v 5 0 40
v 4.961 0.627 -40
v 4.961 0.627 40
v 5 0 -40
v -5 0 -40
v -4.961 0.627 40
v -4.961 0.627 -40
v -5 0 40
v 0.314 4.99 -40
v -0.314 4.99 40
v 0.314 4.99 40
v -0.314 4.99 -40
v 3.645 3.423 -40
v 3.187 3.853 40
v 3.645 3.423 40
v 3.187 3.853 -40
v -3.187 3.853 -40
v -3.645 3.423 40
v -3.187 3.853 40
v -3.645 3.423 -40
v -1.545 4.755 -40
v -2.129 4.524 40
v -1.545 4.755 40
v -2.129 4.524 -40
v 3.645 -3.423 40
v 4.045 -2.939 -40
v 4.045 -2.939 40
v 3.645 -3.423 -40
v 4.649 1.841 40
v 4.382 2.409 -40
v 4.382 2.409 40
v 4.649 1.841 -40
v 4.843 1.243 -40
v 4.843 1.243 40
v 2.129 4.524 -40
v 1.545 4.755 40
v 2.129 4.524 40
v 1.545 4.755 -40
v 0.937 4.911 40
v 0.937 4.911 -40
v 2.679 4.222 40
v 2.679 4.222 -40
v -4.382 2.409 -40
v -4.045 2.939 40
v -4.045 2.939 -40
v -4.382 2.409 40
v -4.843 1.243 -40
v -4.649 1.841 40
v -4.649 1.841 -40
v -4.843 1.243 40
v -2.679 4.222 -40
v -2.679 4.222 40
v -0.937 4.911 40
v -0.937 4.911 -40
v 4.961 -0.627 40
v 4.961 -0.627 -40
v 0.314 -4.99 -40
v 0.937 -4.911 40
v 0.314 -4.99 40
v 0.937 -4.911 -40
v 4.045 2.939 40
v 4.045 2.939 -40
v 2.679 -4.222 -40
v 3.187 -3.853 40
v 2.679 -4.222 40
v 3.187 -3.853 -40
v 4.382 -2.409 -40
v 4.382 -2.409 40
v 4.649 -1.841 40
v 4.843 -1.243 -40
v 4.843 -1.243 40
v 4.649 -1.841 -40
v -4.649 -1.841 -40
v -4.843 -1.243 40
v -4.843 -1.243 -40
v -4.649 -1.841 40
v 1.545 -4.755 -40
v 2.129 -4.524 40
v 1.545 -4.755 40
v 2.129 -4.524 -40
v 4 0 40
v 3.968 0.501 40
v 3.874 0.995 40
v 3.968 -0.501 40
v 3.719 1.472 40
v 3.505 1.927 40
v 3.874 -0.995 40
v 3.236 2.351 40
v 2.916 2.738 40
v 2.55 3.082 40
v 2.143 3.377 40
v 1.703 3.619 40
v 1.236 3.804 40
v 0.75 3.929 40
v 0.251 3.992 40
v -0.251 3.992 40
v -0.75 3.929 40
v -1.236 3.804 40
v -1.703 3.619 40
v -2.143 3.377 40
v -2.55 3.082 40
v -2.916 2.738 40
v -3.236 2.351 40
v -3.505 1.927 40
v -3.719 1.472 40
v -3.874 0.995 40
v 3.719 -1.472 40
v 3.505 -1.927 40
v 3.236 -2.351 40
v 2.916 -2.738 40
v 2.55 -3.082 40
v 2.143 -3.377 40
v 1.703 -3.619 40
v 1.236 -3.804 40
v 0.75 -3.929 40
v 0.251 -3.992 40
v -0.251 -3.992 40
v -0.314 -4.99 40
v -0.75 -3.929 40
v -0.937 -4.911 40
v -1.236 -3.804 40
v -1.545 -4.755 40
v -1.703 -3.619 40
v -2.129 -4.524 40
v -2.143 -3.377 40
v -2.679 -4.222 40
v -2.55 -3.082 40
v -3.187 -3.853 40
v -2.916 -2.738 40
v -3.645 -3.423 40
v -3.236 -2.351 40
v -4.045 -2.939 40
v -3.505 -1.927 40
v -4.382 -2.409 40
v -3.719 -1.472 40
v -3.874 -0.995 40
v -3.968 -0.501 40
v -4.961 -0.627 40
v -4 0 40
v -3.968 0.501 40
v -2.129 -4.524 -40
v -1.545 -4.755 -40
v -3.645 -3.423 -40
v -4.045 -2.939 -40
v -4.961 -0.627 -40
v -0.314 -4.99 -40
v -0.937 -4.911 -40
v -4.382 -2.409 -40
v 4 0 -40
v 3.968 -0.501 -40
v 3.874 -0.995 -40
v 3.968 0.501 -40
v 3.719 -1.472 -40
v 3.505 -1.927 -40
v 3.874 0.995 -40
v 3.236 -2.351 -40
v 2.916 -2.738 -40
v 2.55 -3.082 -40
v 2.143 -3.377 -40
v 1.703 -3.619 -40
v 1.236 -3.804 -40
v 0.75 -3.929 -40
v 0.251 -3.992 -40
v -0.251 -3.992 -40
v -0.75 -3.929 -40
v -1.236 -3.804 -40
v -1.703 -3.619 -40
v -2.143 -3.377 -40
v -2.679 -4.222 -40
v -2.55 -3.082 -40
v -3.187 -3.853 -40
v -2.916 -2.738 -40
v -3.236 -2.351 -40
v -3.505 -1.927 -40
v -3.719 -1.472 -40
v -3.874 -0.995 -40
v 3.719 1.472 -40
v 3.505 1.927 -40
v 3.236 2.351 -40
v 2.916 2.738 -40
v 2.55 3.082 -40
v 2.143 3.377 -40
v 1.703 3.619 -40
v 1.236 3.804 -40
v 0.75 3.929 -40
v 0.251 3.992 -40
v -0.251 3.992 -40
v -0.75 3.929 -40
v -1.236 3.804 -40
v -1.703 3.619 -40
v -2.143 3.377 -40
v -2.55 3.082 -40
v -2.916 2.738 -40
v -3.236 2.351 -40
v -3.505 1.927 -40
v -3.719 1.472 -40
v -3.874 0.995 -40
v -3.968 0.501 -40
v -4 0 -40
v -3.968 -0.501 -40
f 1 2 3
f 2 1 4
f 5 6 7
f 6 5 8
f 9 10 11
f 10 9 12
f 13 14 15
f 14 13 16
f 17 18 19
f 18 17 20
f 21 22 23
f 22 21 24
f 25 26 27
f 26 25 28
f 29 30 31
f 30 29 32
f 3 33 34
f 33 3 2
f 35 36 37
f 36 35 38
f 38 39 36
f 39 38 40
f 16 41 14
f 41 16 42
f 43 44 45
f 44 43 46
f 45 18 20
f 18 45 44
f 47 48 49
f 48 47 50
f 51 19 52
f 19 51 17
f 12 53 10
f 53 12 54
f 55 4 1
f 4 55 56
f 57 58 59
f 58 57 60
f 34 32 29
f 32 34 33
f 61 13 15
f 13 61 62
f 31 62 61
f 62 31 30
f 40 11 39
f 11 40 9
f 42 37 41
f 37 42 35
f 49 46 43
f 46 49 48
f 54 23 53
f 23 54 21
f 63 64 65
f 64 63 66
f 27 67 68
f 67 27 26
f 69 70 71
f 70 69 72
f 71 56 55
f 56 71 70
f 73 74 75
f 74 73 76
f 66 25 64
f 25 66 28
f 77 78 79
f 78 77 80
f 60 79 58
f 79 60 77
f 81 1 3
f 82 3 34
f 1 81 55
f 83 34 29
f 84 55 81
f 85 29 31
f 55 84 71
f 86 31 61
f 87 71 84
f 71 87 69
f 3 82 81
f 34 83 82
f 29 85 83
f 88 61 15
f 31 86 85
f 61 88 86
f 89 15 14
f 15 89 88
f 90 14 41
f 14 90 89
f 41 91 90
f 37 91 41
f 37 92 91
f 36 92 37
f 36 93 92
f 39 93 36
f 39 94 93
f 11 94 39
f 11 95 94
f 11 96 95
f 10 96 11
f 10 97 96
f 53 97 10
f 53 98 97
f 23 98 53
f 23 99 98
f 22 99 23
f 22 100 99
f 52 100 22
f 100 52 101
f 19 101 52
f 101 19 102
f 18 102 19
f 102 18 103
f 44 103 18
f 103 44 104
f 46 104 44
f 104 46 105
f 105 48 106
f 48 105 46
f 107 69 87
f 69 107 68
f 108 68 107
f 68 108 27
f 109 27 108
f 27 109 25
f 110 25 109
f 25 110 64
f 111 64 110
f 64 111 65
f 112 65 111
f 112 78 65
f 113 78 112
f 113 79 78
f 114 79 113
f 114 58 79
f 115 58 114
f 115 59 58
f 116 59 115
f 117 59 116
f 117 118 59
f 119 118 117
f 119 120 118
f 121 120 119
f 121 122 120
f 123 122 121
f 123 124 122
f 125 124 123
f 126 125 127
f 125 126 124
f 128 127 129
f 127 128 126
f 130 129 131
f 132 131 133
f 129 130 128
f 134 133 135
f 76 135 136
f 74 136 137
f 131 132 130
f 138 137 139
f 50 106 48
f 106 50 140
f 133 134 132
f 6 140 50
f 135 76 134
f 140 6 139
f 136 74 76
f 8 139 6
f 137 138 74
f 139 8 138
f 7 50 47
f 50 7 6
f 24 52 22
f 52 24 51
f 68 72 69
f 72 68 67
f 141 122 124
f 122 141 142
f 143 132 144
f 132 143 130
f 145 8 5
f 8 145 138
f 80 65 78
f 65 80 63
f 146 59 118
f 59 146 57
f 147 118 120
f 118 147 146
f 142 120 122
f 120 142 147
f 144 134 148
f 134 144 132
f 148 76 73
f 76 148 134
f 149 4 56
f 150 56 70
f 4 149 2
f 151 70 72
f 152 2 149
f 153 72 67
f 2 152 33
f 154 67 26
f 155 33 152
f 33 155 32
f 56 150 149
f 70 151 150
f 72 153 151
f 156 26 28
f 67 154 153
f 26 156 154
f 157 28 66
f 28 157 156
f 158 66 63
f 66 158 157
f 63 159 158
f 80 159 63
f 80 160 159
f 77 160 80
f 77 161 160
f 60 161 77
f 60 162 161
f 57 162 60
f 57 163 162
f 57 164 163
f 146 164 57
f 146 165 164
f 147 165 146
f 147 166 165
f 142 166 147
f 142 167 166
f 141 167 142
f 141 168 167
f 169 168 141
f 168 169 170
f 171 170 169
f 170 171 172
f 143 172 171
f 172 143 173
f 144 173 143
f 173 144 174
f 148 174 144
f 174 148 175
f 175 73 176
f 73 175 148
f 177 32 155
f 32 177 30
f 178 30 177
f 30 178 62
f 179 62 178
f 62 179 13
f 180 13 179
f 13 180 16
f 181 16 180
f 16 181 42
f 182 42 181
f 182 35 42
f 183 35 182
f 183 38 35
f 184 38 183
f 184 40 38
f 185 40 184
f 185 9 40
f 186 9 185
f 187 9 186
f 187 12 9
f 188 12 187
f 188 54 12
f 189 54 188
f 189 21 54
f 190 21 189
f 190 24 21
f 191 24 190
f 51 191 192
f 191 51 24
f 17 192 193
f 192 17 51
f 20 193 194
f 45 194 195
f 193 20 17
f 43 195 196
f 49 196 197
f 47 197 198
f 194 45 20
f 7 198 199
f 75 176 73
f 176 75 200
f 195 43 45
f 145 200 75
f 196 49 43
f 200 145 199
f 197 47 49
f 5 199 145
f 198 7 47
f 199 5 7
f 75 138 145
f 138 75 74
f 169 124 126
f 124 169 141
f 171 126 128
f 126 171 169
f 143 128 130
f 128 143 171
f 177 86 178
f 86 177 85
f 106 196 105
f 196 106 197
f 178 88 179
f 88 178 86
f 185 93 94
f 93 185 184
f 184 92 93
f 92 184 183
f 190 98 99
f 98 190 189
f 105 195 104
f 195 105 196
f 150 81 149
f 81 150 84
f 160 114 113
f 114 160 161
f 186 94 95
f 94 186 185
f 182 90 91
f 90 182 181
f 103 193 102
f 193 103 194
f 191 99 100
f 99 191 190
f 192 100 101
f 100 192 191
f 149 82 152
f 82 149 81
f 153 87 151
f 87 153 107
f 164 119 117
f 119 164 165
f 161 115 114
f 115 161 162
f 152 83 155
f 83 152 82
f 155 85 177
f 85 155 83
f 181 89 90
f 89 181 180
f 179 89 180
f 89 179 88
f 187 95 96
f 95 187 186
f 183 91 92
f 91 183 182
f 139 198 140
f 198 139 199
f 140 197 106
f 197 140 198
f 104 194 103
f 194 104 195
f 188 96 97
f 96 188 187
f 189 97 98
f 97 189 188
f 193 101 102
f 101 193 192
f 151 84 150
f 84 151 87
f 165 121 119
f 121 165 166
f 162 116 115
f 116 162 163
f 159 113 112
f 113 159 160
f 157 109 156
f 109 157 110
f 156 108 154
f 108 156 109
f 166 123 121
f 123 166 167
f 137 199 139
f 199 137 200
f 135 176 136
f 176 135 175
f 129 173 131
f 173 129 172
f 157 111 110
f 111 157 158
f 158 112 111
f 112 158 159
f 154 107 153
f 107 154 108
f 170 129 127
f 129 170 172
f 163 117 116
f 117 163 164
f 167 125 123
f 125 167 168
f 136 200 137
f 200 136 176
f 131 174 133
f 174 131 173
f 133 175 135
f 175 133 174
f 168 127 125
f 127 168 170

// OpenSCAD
$fn = 50;


difference() {
	union() {
		translate(v = [0, 0, -40.0000000000]) {
			cylinder(h = 80, r = 5.0000000000);
		}
	}
	union() {
		translate(v = [0, 0, -100.0000000000]) {
			cylinder(h = 200, r = 4.0000000000);
		}
	}
}
